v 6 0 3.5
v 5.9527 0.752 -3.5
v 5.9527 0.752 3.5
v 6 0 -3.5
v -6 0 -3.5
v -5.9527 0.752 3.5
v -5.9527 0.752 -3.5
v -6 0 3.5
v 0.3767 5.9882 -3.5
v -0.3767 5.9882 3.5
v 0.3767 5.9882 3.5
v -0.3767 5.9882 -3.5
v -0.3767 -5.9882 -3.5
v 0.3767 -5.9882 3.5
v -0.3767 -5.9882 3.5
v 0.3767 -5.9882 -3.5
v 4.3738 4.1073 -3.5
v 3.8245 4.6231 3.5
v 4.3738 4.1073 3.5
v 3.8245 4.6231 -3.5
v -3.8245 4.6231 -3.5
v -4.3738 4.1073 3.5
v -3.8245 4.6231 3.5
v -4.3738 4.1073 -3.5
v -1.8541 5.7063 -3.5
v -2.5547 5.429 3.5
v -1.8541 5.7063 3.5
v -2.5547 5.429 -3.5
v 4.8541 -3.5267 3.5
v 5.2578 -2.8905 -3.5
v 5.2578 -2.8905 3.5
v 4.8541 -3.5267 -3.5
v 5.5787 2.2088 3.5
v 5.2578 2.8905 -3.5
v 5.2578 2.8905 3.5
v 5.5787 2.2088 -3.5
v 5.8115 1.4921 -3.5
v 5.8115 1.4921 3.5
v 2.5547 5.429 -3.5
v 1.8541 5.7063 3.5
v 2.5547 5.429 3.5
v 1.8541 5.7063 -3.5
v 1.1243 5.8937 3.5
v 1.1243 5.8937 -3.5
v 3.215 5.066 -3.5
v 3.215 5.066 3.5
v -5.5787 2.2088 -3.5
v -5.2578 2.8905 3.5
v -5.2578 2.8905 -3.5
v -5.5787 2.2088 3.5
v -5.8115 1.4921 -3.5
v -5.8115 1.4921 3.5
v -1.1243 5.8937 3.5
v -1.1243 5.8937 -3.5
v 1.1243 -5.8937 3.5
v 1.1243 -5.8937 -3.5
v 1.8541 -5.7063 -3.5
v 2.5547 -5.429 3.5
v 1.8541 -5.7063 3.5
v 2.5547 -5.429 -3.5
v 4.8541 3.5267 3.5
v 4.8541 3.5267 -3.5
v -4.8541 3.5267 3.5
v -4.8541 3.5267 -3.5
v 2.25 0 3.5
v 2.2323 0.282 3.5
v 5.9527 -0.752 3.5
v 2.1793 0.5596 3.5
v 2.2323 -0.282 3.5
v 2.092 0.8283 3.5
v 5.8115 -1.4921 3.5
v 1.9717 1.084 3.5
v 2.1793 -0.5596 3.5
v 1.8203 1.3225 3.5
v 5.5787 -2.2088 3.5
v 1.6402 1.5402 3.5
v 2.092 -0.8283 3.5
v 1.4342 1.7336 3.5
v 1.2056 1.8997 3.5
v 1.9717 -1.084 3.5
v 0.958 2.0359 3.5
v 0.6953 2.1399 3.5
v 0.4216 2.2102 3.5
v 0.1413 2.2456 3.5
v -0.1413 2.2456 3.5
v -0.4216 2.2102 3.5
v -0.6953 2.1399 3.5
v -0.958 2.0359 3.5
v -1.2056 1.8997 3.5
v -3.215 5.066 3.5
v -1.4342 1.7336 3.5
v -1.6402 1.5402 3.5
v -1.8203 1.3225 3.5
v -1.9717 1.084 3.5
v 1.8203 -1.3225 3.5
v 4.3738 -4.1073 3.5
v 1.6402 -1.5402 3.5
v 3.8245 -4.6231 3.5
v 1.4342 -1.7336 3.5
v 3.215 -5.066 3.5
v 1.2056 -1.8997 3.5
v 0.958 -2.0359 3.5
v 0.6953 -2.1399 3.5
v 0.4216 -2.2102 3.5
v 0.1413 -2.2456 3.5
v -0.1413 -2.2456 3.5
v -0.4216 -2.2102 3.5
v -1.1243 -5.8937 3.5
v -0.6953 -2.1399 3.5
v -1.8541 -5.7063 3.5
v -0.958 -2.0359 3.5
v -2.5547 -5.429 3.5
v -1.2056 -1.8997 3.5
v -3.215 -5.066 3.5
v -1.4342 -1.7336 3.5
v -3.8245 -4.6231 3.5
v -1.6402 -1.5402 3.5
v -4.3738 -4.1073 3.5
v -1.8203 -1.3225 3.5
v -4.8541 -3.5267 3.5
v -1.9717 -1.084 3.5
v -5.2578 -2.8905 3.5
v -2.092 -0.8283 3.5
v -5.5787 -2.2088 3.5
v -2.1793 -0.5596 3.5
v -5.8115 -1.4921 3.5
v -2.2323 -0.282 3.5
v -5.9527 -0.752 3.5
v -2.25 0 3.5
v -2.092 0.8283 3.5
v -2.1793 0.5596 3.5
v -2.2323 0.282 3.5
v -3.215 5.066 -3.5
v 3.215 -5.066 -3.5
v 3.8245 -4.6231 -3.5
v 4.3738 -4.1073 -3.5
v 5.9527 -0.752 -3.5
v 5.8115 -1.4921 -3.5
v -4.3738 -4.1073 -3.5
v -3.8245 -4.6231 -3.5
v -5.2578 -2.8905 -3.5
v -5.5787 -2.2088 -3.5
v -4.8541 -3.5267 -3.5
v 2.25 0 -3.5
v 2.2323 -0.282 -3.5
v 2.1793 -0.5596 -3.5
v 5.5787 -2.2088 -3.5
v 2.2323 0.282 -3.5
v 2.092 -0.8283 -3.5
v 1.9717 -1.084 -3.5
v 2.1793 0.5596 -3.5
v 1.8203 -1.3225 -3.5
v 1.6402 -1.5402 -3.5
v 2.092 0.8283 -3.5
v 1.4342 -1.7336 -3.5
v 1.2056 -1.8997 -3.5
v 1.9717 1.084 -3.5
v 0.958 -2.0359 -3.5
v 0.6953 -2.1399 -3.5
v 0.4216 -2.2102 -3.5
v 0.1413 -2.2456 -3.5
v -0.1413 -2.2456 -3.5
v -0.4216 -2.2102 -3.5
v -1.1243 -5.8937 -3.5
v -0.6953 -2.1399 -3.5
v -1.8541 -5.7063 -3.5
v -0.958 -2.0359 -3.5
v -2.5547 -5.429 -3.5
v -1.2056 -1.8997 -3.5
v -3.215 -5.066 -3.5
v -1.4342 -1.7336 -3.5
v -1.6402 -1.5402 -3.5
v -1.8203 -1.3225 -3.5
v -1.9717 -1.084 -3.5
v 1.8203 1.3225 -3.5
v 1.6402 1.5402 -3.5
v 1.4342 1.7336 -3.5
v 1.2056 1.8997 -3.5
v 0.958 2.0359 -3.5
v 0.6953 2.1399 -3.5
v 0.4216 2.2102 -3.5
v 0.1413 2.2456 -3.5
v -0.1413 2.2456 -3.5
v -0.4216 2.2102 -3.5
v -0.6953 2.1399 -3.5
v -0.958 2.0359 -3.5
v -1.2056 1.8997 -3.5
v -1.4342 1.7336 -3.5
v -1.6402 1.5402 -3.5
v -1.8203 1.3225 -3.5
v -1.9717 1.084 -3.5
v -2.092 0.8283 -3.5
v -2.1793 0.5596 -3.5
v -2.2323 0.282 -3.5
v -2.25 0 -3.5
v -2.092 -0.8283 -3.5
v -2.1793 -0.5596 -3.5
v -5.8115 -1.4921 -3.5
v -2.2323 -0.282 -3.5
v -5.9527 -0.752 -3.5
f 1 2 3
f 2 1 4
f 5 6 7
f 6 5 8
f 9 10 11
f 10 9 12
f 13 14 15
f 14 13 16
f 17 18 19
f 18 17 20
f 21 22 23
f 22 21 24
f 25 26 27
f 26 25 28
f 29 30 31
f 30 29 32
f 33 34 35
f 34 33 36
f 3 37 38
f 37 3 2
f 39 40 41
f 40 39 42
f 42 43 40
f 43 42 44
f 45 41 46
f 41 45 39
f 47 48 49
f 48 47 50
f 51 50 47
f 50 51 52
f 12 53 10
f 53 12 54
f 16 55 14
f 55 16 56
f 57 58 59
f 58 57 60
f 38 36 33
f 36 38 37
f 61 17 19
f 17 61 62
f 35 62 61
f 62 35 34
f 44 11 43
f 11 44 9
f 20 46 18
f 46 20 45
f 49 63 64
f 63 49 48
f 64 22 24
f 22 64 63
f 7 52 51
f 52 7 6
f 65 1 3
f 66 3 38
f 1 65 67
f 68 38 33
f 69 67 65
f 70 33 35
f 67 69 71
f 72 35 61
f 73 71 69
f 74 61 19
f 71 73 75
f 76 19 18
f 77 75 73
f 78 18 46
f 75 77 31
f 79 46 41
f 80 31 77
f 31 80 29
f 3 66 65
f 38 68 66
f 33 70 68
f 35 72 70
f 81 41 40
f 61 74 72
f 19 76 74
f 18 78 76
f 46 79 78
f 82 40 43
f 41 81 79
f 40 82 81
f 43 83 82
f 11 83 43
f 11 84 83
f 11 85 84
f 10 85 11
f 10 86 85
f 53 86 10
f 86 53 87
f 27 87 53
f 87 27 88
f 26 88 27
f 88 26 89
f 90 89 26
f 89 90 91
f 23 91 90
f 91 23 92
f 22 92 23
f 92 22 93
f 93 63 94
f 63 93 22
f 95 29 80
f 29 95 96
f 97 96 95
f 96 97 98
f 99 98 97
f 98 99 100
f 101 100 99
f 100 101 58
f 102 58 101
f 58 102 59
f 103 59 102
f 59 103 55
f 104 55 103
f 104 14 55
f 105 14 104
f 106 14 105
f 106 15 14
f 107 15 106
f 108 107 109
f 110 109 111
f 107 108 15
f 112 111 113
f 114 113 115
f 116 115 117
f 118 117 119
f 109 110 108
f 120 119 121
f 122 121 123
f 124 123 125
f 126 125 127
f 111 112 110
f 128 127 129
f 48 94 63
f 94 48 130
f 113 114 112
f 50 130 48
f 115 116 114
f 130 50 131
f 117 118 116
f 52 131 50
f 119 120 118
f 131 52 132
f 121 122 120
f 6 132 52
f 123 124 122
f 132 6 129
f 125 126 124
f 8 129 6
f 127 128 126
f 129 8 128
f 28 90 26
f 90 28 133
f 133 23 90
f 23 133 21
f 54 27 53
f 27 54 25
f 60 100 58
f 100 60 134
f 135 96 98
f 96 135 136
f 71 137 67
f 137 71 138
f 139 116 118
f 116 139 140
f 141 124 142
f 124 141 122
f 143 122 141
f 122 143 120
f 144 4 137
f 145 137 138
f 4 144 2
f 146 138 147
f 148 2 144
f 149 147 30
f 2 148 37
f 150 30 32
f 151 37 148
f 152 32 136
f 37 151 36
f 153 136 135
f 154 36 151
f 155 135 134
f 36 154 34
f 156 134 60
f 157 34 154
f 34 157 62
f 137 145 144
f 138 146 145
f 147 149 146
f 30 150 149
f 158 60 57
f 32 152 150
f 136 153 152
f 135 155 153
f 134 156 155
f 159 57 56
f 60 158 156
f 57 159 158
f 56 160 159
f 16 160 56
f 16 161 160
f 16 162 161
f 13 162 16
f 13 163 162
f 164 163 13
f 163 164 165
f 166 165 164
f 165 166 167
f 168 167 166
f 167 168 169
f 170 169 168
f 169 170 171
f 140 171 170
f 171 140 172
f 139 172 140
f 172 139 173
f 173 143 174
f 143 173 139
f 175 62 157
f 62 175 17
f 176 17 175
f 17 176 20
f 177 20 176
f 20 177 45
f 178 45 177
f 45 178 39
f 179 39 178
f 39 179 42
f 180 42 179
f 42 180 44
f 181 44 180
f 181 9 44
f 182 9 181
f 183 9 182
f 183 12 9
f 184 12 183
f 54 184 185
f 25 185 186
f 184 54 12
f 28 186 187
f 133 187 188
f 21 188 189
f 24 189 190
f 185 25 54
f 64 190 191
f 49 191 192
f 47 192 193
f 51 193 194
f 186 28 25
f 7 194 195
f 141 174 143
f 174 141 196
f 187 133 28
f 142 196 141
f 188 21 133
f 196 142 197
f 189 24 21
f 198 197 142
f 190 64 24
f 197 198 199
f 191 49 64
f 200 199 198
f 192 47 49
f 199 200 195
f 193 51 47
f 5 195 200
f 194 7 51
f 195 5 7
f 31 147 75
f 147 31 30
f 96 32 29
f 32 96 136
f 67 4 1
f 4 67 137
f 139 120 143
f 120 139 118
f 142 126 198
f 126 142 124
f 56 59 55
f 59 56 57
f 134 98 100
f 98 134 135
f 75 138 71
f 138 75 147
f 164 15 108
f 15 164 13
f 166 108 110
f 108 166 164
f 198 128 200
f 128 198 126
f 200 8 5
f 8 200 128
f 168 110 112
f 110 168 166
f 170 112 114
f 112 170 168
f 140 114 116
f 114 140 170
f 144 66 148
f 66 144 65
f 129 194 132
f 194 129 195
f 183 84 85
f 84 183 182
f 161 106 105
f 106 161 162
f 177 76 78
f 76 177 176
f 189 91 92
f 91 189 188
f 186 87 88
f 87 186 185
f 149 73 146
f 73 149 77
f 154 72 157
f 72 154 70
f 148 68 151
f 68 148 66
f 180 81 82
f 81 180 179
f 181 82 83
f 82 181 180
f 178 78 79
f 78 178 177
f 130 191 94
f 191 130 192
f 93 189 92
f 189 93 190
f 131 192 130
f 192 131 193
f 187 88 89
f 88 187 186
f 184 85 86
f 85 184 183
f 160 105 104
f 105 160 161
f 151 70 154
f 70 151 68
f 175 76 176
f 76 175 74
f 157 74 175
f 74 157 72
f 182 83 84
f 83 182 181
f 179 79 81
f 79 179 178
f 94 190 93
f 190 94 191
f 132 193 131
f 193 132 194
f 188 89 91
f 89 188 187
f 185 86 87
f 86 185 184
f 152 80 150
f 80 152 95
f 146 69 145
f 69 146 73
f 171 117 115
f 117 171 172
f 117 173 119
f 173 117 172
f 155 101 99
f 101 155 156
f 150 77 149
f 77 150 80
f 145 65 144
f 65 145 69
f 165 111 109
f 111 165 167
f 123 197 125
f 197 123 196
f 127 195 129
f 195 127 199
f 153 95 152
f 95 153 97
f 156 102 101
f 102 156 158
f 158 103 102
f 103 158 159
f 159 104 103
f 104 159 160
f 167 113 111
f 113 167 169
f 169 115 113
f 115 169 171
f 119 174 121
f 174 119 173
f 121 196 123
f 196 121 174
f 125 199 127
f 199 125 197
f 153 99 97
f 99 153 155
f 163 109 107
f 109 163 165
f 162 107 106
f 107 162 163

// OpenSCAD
$fn = 50;


difference() {
	union() {
		translate(v = [0, 0, -3.5000000000]) {
			cylinder(h = 7, r = 6.0000000000);
		}
	}
	union() {
		translate(v = [0, 0, -100.0000000000]) {
			cylinder(h = 200, r = 2.2500000000);
		}
	}
}
